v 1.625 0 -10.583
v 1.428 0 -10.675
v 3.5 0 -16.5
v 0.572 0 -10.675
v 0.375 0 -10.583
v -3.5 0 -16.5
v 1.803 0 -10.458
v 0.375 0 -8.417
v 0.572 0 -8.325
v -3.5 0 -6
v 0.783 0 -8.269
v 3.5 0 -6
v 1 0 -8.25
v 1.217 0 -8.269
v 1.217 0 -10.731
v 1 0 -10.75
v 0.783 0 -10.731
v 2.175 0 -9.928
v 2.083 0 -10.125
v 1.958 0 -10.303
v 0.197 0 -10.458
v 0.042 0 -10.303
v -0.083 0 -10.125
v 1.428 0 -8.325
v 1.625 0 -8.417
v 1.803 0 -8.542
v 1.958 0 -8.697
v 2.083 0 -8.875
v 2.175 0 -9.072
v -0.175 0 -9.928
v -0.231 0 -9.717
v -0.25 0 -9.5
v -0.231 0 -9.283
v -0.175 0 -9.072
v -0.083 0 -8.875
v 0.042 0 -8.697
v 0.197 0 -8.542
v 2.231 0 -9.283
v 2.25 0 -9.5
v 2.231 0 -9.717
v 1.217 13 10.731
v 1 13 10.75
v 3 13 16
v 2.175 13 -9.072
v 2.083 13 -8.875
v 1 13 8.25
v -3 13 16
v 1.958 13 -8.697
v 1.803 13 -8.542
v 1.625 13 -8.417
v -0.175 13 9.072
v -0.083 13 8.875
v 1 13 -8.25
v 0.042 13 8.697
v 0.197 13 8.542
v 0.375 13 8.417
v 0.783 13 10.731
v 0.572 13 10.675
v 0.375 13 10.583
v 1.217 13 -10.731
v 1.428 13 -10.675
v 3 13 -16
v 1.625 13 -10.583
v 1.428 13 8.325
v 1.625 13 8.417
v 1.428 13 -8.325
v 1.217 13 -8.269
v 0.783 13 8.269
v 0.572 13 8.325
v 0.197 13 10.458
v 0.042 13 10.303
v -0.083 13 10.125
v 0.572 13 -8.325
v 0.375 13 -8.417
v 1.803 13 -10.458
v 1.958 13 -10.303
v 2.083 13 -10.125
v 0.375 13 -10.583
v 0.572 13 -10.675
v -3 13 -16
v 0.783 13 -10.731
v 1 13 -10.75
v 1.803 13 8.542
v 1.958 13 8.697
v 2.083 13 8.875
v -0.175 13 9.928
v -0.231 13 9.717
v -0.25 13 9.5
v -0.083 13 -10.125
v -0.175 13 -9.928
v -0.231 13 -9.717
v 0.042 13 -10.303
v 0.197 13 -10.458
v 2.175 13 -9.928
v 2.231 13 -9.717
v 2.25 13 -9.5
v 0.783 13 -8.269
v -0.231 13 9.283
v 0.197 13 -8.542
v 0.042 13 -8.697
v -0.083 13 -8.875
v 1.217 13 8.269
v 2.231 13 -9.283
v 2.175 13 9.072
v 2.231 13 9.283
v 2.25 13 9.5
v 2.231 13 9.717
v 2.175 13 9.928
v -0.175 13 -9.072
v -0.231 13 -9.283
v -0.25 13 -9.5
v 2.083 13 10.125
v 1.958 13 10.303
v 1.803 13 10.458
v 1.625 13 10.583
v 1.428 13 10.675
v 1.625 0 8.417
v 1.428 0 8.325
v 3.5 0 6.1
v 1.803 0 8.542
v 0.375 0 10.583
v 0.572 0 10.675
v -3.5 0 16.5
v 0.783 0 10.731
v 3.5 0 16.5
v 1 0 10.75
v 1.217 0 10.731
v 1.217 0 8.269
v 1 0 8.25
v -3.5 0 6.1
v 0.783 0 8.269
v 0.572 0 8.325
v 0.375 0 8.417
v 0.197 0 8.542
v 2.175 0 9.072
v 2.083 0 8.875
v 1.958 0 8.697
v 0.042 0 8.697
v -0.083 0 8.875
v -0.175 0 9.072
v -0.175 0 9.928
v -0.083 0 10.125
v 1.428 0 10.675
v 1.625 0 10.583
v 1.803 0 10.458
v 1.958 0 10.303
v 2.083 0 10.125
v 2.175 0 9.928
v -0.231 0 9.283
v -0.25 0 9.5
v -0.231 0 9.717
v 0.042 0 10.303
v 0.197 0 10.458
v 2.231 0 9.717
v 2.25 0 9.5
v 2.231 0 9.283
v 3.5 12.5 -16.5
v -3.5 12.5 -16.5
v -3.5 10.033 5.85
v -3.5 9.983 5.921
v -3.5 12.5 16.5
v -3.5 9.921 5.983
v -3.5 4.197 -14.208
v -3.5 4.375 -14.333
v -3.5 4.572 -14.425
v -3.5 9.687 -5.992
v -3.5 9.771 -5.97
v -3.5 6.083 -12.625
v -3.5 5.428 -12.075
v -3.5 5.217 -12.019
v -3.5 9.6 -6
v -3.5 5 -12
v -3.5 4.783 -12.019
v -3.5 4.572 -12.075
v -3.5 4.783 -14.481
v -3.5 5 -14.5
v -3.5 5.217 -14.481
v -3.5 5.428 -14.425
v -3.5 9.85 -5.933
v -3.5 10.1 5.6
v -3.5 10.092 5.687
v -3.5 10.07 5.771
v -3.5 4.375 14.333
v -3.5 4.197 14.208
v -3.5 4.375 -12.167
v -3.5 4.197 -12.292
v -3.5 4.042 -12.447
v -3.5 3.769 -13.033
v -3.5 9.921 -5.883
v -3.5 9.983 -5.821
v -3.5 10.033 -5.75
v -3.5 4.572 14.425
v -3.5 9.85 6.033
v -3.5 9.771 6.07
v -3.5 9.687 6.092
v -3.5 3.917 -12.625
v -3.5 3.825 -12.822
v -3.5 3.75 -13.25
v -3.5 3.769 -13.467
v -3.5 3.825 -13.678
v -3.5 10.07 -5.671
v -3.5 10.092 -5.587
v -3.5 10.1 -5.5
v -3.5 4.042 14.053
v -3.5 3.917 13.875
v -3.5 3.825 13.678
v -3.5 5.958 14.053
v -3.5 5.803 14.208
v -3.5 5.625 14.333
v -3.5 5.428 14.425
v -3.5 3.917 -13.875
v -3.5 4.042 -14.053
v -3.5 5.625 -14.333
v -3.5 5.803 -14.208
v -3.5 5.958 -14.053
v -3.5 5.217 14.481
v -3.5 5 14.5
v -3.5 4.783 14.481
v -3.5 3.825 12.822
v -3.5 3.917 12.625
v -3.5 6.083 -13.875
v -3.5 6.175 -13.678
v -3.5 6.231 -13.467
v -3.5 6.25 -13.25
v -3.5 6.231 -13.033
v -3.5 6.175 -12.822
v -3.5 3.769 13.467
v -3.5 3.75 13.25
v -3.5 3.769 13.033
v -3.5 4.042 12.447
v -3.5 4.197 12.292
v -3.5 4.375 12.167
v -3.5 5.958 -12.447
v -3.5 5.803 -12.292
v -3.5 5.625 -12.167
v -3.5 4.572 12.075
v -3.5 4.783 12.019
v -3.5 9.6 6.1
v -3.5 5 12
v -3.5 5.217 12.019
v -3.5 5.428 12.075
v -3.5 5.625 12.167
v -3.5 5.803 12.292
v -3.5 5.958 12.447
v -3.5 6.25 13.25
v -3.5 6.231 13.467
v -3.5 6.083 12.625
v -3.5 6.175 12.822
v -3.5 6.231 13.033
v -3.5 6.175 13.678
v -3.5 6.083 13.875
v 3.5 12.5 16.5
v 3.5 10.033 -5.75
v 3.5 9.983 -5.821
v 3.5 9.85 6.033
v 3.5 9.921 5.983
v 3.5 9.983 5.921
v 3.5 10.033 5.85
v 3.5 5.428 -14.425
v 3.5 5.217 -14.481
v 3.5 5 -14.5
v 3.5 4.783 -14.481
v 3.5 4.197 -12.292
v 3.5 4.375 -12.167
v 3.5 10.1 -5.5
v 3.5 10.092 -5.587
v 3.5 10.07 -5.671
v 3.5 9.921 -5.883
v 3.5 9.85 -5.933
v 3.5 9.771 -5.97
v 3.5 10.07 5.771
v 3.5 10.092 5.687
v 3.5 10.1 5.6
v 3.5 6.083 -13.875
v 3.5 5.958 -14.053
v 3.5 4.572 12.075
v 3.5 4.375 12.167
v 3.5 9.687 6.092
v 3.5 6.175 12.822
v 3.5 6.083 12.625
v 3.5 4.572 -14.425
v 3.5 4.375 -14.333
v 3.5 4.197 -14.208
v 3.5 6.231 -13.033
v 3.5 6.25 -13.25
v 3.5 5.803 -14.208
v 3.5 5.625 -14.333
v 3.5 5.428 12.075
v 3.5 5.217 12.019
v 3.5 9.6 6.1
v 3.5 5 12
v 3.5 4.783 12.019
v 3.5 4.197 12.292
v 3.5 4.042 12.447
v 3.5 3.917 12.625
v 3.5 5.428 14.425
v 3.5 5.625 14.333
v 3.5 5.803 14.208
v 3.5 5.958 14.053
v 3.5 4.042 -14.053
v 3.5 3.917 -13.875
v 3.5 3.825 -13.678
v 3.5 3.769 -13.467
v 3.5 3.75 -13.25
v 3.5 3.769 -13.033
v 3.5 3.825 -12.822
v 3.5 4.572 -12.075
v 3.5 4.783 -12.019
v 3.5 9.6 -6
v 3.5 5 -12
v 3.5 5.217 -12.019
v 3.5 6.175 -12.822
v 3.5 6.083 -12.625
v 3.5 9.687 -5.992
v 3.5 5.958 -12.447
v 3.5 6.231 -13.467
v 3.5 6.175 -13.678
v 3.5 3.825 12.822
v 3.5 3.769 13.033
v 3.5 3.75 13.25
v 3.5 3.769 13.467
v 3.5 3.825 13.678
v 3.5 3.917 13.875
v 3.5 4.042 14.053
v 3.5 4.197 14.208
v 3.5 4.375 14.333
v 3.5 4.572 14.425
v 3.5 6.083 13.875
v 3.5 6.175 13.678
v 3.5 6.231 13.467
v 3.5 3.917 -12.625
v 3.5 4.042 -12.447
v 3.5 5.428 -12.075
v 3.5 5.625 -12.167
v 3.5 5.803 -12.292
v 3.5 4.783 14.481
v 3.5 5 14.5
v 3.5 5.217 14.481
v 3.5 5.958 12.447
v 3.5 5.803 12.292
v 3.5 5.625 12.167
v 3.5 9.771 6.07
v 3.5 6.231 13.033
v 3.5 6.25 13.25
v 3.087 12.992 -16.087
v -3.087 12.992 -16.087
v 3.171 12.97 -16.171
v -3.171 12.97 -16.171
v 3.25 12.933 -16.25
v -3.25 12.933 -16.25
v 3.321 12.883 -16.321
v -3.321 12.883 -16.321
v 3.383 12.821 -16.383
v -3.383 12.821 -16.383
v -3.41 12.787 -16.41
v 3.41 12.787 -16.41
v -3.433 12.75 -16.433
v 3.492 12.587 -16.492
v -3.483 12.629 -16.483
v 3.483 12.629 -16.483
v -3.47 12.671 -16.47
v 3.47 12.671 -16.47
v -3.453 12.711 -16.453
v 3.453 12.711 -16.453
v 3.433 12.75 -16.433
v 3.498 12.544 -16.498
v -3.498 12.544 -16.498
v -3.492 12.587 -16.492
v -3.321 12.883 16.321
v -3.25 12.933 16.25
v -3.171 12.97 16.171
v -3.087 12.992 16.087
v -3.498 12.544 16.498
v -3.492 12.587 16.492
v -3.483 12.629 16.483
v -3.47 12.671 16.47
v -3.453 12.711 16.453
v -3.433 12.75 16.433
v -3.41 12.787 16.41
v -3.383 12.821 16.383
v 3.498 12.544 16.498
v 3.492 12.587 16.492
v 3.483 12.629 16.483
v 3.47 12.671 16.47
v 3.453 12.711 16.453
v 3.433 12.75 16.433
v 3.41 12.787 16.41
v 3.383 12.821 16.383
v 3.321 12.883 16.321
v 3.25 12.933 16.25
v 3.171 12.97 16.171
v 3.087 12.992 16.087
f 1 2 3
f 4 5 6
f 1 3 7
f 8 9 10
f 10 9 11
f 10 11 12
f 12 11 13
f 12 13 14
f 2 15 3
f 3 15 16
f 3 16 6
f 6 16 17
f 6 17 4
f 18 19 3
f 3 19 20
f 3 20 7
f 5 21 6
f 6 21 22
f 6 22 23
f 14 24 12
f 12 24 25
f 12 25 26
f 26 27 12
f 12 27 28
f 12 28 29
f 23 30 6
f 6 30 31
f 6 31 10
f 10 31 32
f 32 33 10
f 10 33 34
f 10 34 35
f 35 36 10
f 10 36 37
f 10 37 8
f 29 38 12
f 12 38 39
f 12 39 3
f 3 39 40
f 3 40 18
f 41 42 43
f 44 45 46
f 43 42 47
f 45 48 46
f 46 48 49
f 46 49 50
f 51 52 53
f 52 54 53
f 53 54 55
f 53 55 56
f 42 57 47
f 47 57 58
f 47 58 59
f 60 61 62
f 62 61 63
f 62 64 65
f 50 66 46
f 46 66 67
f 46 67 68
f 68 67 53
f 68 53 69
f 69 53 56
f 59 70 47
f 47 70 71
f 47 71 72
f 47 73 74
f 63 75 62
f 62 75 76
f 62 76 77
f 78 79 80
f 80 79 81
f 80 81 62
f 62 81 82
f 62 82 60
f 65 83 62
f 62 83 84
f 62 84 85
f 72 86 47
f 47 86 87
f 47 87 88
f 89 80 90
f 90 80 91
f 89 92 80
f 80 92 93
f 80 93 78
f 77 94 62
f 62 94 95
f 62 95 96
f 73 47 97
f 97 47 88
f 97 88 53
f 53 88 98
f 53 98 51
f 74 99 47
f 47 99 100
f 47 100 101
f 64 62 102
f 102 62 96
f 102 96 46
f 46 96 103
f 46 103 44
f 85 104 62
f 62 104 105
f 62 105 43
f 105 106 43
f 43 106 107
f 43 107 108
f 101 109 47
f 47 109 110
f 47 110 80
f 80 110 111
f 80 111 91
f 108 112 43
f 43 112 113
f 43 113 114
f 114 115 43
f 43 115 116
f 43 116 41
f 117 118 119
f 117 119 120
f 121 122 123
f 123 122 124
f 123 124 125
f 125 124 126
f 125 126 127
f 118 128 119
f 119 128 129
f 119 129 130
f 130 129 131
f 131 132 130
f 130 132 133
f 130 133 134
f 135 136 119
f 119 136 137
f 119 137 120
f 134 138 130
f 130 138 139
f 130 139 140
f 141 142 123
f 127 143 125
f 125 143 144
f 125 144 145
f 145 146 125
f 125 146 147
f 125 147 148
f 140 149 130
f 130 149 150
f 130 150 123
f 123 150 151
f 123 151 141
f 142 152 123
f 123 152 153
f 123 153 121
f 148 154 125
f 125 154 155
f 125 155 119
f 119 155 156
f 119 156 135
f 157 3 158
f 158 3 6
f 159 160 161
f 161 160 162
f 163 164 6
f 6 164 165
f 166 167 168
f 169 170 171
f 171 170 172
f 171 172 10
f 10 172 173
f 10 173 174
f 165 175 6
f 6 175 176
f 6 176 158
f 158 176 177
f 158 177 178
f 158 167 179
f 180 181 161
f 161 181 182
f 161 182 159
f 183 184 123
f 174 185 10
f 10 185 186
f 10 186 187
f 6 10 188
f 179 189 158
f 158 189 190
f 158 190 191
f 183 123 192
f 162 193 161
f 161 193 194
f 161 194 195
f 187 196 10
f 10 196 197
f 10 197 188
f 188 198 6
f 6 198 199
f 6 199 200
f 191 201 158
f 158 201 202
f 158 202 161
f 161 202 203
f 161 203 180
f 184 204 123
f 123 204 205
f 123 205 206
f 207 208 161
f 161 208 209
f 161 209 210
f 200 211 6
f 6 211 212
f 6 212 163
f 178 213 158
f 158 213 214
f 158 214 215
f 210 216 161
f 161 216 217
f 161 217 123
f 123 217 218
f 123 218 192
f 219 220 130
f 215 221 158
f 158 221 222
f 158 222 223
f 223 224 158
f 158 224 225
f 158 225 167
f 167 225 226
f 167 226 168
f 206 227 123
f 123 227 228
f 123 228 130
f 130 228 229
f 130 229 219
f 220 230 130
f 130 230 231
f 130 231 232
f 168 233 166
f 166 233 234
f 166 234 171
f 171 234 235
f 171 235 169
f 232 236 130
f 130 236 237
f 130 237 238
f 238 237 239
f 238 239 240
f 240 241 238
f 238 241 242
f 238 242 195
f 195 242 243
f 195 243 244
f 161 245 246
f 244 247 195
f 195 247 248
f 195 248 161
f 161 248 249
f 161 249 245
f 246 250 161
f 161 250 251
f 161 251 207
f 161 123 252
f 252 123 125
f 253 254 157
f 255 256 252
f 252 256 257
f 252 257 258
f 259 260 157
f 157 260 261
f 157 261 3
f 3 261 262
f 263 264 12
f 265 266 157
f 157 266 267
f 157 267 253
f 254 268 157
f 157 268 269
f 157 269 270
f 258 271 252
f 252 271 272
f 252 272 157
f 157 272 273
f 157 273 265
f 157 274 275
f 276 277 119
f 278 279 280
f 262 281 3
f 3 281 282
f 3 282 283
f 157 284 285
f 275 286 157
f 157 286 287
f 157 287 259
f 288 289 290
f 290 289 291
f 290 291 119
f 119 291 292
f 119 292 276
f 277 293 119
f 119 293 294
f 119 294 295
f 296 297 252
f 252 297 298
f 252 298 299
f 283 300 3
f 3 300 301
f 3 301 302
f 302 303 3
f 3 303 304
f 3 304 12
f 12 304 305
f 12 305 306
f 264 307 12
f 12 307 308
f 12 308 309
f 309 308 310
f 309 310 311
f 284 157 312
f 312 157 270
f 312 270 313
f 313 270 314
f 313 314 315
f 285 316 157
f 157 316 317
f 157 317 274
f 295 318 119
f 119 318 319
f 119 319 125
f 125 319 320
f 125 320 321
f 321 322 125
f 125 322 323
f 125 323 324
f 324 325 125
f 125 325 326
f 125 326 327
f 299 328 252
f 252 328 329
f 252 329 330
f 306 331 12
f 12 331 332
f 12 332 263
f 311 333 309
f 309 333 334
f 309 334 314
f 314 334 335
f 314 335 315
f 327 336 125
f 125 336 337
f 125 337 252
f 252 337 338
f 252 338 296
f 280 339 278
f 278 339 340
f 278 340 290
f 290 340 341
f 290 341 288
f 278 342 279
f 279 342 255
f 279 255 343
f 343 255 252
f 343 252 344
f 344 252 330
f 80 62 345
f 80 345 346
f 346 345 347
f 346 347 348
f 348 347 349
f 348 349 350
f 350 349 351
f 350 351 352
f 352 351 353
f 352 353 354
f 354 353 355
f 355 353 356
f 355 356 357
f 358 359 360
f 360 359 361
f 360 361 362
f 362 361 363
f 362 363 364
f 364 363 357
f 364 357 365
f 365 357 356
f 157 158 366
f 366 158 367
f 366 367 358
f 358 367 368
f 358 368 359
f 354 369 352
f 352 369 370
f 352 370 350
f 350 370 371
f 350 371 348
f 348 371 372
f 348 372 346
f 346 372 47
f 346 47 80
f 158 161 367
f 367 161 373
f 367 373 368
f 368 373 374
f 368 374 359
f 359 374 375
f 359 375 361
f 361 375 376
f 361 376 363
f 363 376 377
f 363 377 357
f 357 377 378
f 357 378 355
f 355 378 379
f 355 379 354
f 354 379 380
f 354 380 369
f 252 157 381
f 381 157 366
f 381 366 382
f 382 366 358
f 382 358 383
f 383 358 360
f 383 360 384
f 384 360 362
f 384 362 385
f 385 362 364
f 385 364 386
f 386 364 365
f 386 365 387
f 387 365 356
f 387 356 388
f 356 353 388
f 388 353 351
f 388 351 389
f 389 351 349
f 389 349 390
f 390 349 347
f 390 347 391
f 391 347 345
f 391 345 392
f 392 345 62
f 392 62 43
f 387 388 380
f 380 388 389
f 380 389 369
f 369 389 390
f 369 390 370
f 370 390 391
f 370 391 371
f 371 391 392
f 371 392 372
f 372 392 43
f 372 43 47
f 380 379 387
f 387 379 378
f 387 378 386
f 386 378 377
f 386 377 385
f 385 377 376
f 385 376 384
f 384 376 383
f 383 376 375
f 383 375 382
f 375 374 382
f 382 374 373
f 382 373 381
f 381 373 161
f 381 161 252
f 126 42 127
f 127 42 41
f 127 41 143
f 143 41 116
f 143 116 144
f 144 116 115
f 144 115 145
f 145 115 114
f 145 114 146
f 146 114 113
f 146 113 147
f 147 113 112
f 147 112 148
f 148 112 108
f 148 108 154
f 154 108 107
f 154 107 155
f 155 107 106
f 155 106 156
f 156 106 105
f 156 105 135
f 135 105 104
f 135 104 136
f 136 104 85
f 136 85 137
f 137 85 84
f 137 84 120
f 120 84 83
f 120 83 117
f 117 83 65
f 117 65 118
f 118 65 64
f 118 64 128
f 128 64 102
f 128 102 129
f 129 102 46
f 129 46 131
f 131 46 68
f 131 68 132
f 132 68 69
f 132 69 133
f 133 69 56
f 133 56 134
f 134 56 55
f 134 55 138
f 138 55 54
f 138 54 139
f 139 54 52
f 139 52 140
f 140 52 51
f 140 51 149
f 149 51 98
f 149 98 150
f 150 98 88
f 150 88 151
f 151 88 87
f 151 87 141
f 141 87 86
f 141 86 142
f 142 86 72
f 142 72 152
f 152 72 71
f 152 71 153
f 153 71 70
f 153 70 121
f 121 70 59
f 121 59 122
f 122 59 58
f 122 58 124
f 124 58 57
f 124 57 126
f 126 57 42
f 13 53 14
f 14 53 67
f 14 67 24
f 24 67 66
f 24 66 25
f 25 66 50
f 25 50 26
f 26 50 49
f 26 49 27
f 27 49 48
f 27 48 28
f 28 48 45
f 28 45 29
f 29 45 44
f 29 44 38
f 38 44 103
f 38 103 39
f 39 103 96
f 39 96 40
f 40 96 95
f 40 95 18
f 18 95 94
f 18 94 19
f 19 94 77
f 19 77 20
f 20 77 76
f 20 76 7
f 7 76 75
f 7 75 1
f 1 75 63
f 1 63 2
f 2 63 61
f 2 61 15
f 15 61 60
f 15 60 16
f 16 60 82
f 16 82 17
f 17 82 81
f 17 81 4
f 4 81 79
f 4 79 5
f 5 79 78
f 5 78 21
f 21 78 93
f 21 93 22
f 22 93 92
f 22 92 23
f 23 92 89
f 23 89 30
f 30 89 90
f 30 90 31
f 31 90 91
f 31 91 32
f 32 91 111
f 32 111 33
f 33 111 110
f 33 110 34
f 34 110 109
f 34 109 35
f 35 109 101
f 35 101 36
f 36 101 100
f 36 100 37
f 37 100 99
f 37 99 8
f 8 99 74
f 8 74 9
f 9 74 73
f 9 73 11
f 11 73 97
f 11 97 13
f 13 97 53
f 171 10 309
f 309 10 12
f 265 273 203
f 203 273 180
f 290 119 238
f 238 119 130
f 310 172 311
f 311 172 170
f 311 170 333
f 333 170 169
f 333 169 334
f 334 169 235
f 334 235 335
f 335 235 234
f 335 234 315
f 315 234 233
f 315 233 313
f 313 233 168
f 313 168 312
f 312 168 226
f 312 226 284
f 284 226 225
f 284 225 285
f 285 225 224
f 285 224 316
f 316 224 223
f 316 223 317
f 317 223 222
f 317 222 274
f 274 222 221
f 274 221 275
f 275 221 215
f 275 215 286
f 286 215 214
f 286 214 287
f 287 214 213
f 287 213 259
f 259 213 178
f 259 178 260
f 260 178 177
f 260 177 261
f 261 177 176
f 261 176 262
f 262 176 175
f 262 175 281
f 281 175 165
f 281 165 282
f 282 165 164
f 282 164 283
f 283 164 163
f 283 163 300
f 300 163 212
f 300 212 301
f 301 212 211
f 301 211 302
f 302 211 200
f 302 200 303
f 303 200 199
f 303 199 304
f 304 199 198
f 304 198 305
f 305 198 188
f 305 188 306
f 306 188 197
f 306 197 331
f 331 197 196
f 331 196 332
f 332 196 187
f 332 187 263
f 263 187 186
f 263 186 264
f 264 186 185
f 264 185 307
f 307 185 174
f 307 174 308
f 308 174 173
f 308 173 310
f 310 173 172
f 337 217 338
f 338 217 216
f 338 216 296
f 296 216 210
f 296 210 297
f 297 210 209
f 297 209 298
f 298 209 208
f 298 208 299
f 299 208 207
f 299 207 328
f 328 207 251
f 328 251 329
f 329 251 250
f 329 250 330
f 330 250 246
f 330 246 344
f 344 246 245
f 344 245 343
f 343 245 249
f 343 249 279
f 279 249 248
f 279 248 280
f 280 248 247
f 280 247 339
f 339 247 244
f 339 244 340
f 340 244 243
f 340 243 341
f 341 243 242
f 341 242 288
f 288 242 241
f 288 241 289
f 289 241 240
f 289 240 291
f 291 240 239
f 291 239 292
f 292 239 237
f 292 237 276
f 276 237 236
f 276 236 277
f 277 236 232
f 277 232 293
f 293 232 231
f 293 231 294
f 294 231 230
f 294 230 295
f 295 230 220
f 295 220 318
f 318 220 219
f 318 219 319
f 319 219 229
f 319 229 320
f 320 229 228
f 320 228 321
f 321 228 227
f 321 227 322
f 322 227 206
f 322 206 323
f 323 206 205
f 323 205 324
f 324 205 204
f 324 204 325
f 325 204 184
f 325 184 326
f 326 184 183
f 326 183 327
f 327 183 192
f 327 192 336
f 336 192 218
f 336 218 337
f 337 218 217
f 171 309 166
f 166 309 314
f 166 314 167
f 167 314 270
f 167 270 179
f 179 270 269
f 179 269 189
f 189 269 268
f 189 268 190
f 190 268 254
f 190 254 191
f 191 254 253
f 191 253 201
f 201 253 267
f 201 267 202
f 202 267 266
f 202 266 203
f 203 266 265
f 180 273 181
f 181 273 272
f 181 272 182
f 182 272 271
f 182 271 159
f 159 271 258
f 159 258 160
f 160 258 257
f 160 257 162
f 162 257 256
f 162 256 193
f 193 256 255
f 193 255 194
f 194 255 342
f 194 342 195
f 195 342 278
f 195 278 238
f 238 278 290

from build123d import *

# Parameters (mm, degrees)
SKETCH1_W           = 7
SKETCH1_H           = 33
BOSS_EXTRUDE1_DEPTH = 13
FILLET4_R           = 0.5
SKETCH3_R           = 1.25
CUT_EXTRUDE1_DEPTH  = 22.295539439
SKETCH5_R           = 1.25
SKETCH5_W           = 12.1
SKETCH5_H           = 10.1
CUT_EXTRUDE2_DEPTH  = 23.141589825
FILLET5_R           = 0.5


with BuildPart() as part:
    # Sketch1 → Boss-Extrude1 (new body)
    with BuildSketch(Plane(origin=(0, 0, 0), x_dir=(1, 0, 0), z_dir=(0, 1, 0))):
        Rectangle(SKETCH1_W, SKETCH1_H)
    extrude(amount=BOSS_EXTRUDE1_DEPTH)

    # Fillet4
    fillet4_edges = [part.edges().sort_by_distance(p)[0] for p in [
        (0, 13, 16.5),
        (-3.5, 13, 0),
        (0, 13, -16.5),
        (3.5, 13, 0),
    ]]
    fillet(fillet4_edges, radius=FILLET4_R)

    # Sketch3 → Cut-Extrude1 (cut, through all)
    with BuildSketch(Plane(origin=(0, 13, 0), x_dir=(1, 0, 0), z_dir=(0, 1, 0))):
        with Locations(Location((1, 9.5, 0), (0, 0, 270))):
            Circle(SKETCH3_R)
        with Locations(Location((1, -9.5, 0), (0, 0, 270))):
            Circle(SKETCH3_R)
    extrude(amount=-CUT_EXTRUDE1_DEPTH, mode=Mode.SUBTRACT)

    # Sketch5 → Cut-Extrude2 (cut, through all)
    with BuildSketch(Plane.ZY.offset(3.5)):
        with Locations((-13.25, 5)):
            Circle(SKETCH5_R)
        with Locations(Location((13.25, 5, 0), (0, 0, 180))):
            Circle(SKETCH5_R)
        with Locations((0.05, 5.05)):
            Rectangle(SKETCH5_W, SKETCH5_H)
    extrude(amount=-CUT_EXTRUDE2_DEPTH, mode=Mode.SUBTRACT)

    # Fillet5
    fillet5_edges = [part.edges().sort_by_distance(p)[0] for p in [
        (0, 10.1, -6),
        (0, 10.1, 6.1),
    ]]
    fillet(fillet5_edges, radius=FILLET5_R)


solid = part.part
